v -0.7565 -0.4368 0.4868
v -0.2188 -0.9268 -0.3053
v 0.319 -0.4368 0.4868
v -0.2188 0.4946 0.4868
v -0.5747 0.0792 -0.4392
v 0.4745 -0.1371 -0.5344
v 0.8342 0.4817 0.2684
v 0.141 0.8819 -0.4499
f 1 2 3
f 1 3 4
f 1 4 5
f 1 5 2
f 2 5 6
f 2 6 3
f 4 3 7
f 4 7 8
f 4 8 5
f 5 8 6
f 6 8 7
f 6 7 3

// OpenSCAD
polyhedron( points = [[-0.756499901290106, -0.436765328813038, 0.486768662808997], [-0.218756018120249, -0.926786334962429, -0.305307637450005], [-0.218756018008738, 0.4946343984253, 0.486768662808997], [-0.574718450487692, 0.0792162531820108, -0.439186221088311], [0.474486563287382, -0.137085343717928, -0.534351309171046], [0.141006808147136, 0.88189761987446, -0.449859247267619], [0.31898786516112, -0.436765328813038, 0.486768662808997], [0.834249151311147, 0.481654064824662, 0.268398426549991]], faces = [[0, 1, 6], [0, 6, 2], [0, 2, 3], [0, 3, 1], [1, 3, 4], [1, 4, 6], [2, 6, 7], [2, 7, 5], [2, 5, 3], [3, 5, 4], [4, 5, 7], [4, 7, 6]]);
